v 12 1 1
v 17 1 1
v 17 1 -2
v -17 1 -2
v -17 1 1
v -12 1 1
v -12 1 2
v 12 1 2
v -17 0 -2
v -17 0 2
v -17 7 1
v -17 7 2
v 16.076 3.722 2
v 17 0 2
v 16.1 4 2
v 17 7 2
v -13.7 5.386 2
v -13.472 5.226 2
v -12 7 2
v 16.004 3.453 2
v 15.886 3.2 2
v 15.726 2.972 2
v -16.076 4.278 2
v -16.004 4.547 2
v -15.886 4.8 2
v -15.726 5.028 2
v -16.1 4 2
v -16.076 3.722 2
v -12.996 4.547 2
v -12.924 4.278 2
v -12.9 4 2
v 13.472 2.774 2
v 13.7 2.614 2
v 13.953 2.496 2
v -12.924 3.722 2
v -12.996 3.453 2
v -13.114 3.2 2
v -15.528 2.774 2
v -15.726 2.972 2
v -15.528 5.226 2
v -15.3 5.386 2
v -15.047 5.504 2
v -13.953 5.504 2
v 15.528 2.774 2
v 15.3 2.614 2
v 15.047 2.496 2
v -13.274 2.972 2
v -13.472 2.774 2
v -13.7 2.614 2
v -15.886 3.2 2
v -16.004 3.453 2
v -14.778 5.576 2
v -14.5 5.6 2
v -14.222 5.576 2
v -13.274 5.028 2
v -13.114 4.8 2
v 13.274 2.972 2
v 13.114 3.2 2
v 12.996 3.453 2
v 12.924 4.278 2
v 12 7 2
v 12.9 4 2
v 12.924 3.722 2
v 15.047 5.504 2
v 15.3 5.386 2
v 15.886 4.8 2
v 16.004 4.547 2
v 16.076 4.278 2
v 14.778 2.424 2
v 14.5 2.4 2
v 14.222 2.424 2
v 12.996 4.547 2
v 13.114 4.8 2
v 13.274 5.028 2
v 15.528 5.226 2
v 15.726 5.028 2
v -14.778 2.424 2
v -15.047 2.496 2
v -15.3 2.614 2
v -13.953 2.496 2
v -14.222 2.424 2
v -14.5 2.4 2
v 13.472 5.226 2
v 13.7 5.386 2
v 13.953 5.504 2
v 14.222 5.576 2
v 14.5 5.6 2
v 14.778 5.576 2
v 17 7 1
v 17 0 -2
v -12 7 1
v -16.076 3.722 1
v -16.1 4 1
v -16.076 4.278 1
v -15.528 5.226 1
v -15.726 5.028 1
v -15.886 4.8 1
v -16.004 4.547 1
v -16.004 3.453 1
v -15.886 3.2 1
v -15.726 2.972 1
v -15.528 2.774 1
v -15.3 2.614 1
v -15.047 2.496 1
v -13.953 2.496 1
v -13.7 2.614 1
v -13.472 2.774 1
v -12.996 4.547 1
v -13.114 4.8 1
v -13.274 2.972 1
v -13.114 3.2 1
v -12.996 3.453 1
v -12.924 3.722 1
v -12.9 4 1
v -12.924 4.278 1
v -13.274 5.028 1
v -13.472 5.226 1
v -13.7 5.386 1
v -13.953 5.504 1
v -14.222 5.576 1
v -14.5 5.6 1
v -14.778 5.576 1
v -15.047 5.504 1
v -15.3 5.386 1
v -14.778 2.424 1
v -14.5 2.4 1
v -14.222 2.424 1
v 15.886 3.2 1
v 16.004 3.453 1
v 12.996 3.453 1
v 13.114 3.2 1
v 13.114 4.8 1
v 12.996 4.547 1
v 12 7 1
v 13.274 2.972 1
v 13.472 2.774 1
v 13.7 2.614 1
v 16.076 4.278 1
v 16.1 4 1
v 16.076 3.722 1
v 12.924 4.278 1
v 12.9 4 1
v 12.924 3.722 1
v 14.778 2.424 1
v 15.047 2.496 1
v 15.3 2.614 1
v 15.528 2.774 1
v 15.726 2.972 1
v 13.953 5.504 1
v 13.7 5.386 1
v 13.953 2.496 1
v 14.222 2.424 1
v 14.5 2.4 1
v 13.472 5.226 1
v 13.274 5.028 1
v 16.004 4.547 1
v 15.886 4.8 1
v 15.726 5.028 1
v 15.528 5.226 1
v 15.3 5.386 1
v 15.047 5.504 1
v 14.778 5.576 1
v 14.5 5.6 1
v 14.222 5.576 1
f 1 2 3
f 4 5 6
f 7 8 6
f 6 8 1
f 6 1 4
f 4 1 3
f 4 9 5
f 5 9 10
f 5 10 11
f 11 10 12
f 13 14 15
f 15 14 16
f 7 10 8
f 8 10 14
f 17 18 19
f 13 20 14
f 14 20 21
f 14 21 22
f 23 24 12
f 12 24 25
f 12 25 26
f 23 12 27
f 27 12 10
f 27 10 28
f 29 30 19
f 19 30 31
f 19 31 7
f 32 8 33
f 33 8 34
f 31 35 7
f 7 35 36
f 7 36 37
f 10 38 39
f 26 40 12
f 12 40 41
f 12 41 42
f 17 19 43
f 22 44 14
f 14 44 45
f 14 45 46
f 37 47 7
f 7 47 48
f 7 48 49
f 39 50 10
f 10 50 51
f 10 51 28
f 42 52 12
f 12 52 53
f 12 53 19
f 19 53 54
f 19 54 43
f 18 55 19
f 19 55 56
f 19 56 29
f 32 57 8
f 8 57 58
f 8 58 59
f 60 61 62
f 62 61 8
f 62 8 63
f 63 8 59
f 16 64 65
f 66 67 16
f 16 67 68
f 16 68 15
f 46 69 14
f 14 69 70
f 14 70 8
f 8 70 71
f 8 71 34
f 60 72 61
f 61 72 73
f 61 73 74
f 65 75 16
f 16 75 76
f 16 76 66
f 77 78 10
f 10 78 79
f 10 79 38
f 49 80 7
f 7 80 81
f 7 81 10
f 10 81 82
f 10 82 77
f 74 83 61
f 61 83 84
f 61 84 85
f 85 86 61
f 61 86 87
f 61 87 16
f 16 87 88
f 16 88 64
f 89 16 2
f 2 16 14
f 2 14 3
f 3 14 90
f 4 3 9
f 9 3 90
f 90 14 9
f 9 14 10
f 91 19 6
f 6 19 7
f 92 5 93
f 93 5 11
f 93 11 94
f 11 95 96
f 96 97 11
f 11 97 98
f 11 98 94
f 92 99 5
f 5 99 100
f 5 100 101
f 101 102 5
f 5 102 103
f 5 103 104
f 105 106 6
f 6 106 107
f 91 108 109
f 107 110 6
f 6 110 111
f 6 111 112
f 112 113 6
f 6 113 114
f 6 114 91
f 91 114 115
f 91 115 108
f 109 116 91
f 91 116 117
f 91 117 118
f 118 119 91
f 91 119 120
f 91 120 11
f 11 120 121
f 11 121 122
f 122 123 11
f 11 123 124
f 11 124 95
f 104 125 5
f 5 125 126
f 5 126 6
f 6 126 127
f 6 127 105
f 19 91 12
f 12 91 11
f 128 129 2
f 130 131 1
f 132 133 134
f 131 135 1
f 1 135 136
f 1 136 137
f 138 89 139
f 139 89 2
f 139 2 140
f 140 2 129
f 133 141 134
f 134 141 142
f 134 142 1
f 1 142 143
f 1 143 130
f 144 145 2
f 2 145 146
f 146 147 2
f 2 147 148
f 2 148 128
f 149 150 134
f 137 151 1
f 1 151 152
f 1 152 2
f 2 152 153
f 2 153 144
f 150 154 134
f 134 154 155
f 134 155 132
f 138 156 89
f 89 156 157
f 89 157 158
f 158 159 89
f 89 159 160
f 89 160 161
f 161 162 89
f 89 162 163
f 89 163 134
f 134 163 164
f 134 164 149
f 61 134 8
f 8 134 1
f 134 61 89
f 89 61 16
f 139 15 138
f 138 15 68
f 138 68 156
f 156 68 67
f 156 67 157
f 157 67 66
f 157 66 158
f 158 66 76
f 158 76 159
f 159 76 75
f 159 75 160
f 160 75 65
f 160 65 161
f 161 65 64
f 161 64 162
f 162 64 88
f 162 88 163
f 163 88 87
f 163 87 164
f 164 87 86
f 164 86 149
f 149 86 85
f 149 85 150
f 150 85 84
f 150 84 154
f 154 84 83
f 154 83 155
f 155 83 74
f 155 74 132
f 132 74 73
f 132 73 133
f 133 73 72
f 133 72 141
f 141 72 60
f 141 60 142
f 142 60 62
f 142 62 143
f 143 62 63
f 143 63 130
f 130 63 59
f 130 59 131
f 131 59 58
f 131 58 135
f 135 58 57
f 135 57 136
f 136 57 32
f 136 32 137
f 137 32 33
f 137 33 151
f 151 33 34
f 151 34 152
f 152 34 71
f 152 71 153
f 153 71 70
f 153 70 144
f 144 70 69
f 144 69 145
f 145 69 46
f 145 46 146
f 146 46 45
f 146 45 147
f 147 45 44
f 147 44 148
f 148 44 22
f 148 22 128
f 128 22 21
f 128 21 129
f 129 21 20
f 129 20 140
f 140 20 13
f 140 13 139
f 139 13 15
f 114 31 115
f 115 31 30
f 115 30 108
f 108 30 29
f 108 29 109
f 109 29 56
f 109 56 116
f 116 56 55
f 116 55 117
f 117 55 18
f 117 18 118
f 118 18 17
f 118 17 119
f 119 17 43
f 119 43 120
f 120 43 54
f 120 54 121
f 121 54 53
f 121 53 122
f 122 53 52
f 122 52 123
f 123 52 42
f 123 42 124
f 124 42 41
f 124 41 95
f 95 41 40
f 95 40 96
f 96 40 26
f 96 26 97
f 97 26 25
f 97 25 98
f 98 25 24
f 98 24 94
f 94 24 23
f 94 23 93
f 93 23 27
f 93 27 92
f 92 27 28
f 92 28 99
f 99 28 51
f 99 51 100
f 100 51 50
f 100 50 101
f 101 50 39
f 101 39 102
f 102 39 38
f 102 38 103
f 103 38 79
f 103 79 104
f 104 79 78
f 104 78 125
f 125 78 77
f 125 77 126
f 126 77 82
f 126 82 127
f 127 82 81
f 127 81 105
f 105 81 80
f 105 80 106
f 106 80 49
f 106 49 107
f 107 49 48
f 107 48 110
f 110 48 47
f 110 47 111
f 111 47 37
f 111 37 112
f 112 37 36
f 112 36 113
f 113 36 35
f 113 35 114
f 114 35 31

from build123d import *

# Parameters (mm, degrees)
SKETCH1_W           = 34
SKETCH1_H           = 4
BOSS_EXTRUDE1_DEPTH = 1
SKETCH2_W           = 5
SKETCH2_H           = 1
BOSS_EXTRUDE2_DEPTH = 6
SKETCH3_R           = 1.6
CUT_EXTRUDE1_DEPTH  = 6


with BuildPart() as part:
    # Sketch1 → Boss-Extrude1 (new body)
    with BuildSketch(Plane(origin=(0, 0, 0), x_dir=(1, 0, 0), z_dir=(0, 1, 0))):
        Rectangle(SKETCH1_W, SKETCH1_H)
    extrude(amount=BOSS_EXTRUDE1_DEPTH)

    # Sketch2 → Boss-Extrude2 (add)
    with BuildSketch(Plane(origin=(0, 1, 0), x_dir=(1, 0, 0), z_dir=(0, 1, 0))):
        with Locations((-14.5, -1.5)):
            Rectangle(SKETCH2_W, SKETCH2_H)
        with Locations((14.5, -1.5)):
            Rectangle(SKETCH2_W, SKETCH2_H)
    extrude(amount=BOSS_EXTRUDE2_DEPTH)

    # Sketch3 → Cut-Extrude1 (cut)
    with BuildSketch(Plane.XY.offset(2)):
        with Locations((-14.5, 4)):
            Circle(SKETCH3_R)
        with Locations((14.5, 4)):
            Circle(SKETCH3_R)
    extrude(amount=-CUT_EXTRUDE1_DEPTH, mode=Mode.SUBTRACT)


solid = part.part
